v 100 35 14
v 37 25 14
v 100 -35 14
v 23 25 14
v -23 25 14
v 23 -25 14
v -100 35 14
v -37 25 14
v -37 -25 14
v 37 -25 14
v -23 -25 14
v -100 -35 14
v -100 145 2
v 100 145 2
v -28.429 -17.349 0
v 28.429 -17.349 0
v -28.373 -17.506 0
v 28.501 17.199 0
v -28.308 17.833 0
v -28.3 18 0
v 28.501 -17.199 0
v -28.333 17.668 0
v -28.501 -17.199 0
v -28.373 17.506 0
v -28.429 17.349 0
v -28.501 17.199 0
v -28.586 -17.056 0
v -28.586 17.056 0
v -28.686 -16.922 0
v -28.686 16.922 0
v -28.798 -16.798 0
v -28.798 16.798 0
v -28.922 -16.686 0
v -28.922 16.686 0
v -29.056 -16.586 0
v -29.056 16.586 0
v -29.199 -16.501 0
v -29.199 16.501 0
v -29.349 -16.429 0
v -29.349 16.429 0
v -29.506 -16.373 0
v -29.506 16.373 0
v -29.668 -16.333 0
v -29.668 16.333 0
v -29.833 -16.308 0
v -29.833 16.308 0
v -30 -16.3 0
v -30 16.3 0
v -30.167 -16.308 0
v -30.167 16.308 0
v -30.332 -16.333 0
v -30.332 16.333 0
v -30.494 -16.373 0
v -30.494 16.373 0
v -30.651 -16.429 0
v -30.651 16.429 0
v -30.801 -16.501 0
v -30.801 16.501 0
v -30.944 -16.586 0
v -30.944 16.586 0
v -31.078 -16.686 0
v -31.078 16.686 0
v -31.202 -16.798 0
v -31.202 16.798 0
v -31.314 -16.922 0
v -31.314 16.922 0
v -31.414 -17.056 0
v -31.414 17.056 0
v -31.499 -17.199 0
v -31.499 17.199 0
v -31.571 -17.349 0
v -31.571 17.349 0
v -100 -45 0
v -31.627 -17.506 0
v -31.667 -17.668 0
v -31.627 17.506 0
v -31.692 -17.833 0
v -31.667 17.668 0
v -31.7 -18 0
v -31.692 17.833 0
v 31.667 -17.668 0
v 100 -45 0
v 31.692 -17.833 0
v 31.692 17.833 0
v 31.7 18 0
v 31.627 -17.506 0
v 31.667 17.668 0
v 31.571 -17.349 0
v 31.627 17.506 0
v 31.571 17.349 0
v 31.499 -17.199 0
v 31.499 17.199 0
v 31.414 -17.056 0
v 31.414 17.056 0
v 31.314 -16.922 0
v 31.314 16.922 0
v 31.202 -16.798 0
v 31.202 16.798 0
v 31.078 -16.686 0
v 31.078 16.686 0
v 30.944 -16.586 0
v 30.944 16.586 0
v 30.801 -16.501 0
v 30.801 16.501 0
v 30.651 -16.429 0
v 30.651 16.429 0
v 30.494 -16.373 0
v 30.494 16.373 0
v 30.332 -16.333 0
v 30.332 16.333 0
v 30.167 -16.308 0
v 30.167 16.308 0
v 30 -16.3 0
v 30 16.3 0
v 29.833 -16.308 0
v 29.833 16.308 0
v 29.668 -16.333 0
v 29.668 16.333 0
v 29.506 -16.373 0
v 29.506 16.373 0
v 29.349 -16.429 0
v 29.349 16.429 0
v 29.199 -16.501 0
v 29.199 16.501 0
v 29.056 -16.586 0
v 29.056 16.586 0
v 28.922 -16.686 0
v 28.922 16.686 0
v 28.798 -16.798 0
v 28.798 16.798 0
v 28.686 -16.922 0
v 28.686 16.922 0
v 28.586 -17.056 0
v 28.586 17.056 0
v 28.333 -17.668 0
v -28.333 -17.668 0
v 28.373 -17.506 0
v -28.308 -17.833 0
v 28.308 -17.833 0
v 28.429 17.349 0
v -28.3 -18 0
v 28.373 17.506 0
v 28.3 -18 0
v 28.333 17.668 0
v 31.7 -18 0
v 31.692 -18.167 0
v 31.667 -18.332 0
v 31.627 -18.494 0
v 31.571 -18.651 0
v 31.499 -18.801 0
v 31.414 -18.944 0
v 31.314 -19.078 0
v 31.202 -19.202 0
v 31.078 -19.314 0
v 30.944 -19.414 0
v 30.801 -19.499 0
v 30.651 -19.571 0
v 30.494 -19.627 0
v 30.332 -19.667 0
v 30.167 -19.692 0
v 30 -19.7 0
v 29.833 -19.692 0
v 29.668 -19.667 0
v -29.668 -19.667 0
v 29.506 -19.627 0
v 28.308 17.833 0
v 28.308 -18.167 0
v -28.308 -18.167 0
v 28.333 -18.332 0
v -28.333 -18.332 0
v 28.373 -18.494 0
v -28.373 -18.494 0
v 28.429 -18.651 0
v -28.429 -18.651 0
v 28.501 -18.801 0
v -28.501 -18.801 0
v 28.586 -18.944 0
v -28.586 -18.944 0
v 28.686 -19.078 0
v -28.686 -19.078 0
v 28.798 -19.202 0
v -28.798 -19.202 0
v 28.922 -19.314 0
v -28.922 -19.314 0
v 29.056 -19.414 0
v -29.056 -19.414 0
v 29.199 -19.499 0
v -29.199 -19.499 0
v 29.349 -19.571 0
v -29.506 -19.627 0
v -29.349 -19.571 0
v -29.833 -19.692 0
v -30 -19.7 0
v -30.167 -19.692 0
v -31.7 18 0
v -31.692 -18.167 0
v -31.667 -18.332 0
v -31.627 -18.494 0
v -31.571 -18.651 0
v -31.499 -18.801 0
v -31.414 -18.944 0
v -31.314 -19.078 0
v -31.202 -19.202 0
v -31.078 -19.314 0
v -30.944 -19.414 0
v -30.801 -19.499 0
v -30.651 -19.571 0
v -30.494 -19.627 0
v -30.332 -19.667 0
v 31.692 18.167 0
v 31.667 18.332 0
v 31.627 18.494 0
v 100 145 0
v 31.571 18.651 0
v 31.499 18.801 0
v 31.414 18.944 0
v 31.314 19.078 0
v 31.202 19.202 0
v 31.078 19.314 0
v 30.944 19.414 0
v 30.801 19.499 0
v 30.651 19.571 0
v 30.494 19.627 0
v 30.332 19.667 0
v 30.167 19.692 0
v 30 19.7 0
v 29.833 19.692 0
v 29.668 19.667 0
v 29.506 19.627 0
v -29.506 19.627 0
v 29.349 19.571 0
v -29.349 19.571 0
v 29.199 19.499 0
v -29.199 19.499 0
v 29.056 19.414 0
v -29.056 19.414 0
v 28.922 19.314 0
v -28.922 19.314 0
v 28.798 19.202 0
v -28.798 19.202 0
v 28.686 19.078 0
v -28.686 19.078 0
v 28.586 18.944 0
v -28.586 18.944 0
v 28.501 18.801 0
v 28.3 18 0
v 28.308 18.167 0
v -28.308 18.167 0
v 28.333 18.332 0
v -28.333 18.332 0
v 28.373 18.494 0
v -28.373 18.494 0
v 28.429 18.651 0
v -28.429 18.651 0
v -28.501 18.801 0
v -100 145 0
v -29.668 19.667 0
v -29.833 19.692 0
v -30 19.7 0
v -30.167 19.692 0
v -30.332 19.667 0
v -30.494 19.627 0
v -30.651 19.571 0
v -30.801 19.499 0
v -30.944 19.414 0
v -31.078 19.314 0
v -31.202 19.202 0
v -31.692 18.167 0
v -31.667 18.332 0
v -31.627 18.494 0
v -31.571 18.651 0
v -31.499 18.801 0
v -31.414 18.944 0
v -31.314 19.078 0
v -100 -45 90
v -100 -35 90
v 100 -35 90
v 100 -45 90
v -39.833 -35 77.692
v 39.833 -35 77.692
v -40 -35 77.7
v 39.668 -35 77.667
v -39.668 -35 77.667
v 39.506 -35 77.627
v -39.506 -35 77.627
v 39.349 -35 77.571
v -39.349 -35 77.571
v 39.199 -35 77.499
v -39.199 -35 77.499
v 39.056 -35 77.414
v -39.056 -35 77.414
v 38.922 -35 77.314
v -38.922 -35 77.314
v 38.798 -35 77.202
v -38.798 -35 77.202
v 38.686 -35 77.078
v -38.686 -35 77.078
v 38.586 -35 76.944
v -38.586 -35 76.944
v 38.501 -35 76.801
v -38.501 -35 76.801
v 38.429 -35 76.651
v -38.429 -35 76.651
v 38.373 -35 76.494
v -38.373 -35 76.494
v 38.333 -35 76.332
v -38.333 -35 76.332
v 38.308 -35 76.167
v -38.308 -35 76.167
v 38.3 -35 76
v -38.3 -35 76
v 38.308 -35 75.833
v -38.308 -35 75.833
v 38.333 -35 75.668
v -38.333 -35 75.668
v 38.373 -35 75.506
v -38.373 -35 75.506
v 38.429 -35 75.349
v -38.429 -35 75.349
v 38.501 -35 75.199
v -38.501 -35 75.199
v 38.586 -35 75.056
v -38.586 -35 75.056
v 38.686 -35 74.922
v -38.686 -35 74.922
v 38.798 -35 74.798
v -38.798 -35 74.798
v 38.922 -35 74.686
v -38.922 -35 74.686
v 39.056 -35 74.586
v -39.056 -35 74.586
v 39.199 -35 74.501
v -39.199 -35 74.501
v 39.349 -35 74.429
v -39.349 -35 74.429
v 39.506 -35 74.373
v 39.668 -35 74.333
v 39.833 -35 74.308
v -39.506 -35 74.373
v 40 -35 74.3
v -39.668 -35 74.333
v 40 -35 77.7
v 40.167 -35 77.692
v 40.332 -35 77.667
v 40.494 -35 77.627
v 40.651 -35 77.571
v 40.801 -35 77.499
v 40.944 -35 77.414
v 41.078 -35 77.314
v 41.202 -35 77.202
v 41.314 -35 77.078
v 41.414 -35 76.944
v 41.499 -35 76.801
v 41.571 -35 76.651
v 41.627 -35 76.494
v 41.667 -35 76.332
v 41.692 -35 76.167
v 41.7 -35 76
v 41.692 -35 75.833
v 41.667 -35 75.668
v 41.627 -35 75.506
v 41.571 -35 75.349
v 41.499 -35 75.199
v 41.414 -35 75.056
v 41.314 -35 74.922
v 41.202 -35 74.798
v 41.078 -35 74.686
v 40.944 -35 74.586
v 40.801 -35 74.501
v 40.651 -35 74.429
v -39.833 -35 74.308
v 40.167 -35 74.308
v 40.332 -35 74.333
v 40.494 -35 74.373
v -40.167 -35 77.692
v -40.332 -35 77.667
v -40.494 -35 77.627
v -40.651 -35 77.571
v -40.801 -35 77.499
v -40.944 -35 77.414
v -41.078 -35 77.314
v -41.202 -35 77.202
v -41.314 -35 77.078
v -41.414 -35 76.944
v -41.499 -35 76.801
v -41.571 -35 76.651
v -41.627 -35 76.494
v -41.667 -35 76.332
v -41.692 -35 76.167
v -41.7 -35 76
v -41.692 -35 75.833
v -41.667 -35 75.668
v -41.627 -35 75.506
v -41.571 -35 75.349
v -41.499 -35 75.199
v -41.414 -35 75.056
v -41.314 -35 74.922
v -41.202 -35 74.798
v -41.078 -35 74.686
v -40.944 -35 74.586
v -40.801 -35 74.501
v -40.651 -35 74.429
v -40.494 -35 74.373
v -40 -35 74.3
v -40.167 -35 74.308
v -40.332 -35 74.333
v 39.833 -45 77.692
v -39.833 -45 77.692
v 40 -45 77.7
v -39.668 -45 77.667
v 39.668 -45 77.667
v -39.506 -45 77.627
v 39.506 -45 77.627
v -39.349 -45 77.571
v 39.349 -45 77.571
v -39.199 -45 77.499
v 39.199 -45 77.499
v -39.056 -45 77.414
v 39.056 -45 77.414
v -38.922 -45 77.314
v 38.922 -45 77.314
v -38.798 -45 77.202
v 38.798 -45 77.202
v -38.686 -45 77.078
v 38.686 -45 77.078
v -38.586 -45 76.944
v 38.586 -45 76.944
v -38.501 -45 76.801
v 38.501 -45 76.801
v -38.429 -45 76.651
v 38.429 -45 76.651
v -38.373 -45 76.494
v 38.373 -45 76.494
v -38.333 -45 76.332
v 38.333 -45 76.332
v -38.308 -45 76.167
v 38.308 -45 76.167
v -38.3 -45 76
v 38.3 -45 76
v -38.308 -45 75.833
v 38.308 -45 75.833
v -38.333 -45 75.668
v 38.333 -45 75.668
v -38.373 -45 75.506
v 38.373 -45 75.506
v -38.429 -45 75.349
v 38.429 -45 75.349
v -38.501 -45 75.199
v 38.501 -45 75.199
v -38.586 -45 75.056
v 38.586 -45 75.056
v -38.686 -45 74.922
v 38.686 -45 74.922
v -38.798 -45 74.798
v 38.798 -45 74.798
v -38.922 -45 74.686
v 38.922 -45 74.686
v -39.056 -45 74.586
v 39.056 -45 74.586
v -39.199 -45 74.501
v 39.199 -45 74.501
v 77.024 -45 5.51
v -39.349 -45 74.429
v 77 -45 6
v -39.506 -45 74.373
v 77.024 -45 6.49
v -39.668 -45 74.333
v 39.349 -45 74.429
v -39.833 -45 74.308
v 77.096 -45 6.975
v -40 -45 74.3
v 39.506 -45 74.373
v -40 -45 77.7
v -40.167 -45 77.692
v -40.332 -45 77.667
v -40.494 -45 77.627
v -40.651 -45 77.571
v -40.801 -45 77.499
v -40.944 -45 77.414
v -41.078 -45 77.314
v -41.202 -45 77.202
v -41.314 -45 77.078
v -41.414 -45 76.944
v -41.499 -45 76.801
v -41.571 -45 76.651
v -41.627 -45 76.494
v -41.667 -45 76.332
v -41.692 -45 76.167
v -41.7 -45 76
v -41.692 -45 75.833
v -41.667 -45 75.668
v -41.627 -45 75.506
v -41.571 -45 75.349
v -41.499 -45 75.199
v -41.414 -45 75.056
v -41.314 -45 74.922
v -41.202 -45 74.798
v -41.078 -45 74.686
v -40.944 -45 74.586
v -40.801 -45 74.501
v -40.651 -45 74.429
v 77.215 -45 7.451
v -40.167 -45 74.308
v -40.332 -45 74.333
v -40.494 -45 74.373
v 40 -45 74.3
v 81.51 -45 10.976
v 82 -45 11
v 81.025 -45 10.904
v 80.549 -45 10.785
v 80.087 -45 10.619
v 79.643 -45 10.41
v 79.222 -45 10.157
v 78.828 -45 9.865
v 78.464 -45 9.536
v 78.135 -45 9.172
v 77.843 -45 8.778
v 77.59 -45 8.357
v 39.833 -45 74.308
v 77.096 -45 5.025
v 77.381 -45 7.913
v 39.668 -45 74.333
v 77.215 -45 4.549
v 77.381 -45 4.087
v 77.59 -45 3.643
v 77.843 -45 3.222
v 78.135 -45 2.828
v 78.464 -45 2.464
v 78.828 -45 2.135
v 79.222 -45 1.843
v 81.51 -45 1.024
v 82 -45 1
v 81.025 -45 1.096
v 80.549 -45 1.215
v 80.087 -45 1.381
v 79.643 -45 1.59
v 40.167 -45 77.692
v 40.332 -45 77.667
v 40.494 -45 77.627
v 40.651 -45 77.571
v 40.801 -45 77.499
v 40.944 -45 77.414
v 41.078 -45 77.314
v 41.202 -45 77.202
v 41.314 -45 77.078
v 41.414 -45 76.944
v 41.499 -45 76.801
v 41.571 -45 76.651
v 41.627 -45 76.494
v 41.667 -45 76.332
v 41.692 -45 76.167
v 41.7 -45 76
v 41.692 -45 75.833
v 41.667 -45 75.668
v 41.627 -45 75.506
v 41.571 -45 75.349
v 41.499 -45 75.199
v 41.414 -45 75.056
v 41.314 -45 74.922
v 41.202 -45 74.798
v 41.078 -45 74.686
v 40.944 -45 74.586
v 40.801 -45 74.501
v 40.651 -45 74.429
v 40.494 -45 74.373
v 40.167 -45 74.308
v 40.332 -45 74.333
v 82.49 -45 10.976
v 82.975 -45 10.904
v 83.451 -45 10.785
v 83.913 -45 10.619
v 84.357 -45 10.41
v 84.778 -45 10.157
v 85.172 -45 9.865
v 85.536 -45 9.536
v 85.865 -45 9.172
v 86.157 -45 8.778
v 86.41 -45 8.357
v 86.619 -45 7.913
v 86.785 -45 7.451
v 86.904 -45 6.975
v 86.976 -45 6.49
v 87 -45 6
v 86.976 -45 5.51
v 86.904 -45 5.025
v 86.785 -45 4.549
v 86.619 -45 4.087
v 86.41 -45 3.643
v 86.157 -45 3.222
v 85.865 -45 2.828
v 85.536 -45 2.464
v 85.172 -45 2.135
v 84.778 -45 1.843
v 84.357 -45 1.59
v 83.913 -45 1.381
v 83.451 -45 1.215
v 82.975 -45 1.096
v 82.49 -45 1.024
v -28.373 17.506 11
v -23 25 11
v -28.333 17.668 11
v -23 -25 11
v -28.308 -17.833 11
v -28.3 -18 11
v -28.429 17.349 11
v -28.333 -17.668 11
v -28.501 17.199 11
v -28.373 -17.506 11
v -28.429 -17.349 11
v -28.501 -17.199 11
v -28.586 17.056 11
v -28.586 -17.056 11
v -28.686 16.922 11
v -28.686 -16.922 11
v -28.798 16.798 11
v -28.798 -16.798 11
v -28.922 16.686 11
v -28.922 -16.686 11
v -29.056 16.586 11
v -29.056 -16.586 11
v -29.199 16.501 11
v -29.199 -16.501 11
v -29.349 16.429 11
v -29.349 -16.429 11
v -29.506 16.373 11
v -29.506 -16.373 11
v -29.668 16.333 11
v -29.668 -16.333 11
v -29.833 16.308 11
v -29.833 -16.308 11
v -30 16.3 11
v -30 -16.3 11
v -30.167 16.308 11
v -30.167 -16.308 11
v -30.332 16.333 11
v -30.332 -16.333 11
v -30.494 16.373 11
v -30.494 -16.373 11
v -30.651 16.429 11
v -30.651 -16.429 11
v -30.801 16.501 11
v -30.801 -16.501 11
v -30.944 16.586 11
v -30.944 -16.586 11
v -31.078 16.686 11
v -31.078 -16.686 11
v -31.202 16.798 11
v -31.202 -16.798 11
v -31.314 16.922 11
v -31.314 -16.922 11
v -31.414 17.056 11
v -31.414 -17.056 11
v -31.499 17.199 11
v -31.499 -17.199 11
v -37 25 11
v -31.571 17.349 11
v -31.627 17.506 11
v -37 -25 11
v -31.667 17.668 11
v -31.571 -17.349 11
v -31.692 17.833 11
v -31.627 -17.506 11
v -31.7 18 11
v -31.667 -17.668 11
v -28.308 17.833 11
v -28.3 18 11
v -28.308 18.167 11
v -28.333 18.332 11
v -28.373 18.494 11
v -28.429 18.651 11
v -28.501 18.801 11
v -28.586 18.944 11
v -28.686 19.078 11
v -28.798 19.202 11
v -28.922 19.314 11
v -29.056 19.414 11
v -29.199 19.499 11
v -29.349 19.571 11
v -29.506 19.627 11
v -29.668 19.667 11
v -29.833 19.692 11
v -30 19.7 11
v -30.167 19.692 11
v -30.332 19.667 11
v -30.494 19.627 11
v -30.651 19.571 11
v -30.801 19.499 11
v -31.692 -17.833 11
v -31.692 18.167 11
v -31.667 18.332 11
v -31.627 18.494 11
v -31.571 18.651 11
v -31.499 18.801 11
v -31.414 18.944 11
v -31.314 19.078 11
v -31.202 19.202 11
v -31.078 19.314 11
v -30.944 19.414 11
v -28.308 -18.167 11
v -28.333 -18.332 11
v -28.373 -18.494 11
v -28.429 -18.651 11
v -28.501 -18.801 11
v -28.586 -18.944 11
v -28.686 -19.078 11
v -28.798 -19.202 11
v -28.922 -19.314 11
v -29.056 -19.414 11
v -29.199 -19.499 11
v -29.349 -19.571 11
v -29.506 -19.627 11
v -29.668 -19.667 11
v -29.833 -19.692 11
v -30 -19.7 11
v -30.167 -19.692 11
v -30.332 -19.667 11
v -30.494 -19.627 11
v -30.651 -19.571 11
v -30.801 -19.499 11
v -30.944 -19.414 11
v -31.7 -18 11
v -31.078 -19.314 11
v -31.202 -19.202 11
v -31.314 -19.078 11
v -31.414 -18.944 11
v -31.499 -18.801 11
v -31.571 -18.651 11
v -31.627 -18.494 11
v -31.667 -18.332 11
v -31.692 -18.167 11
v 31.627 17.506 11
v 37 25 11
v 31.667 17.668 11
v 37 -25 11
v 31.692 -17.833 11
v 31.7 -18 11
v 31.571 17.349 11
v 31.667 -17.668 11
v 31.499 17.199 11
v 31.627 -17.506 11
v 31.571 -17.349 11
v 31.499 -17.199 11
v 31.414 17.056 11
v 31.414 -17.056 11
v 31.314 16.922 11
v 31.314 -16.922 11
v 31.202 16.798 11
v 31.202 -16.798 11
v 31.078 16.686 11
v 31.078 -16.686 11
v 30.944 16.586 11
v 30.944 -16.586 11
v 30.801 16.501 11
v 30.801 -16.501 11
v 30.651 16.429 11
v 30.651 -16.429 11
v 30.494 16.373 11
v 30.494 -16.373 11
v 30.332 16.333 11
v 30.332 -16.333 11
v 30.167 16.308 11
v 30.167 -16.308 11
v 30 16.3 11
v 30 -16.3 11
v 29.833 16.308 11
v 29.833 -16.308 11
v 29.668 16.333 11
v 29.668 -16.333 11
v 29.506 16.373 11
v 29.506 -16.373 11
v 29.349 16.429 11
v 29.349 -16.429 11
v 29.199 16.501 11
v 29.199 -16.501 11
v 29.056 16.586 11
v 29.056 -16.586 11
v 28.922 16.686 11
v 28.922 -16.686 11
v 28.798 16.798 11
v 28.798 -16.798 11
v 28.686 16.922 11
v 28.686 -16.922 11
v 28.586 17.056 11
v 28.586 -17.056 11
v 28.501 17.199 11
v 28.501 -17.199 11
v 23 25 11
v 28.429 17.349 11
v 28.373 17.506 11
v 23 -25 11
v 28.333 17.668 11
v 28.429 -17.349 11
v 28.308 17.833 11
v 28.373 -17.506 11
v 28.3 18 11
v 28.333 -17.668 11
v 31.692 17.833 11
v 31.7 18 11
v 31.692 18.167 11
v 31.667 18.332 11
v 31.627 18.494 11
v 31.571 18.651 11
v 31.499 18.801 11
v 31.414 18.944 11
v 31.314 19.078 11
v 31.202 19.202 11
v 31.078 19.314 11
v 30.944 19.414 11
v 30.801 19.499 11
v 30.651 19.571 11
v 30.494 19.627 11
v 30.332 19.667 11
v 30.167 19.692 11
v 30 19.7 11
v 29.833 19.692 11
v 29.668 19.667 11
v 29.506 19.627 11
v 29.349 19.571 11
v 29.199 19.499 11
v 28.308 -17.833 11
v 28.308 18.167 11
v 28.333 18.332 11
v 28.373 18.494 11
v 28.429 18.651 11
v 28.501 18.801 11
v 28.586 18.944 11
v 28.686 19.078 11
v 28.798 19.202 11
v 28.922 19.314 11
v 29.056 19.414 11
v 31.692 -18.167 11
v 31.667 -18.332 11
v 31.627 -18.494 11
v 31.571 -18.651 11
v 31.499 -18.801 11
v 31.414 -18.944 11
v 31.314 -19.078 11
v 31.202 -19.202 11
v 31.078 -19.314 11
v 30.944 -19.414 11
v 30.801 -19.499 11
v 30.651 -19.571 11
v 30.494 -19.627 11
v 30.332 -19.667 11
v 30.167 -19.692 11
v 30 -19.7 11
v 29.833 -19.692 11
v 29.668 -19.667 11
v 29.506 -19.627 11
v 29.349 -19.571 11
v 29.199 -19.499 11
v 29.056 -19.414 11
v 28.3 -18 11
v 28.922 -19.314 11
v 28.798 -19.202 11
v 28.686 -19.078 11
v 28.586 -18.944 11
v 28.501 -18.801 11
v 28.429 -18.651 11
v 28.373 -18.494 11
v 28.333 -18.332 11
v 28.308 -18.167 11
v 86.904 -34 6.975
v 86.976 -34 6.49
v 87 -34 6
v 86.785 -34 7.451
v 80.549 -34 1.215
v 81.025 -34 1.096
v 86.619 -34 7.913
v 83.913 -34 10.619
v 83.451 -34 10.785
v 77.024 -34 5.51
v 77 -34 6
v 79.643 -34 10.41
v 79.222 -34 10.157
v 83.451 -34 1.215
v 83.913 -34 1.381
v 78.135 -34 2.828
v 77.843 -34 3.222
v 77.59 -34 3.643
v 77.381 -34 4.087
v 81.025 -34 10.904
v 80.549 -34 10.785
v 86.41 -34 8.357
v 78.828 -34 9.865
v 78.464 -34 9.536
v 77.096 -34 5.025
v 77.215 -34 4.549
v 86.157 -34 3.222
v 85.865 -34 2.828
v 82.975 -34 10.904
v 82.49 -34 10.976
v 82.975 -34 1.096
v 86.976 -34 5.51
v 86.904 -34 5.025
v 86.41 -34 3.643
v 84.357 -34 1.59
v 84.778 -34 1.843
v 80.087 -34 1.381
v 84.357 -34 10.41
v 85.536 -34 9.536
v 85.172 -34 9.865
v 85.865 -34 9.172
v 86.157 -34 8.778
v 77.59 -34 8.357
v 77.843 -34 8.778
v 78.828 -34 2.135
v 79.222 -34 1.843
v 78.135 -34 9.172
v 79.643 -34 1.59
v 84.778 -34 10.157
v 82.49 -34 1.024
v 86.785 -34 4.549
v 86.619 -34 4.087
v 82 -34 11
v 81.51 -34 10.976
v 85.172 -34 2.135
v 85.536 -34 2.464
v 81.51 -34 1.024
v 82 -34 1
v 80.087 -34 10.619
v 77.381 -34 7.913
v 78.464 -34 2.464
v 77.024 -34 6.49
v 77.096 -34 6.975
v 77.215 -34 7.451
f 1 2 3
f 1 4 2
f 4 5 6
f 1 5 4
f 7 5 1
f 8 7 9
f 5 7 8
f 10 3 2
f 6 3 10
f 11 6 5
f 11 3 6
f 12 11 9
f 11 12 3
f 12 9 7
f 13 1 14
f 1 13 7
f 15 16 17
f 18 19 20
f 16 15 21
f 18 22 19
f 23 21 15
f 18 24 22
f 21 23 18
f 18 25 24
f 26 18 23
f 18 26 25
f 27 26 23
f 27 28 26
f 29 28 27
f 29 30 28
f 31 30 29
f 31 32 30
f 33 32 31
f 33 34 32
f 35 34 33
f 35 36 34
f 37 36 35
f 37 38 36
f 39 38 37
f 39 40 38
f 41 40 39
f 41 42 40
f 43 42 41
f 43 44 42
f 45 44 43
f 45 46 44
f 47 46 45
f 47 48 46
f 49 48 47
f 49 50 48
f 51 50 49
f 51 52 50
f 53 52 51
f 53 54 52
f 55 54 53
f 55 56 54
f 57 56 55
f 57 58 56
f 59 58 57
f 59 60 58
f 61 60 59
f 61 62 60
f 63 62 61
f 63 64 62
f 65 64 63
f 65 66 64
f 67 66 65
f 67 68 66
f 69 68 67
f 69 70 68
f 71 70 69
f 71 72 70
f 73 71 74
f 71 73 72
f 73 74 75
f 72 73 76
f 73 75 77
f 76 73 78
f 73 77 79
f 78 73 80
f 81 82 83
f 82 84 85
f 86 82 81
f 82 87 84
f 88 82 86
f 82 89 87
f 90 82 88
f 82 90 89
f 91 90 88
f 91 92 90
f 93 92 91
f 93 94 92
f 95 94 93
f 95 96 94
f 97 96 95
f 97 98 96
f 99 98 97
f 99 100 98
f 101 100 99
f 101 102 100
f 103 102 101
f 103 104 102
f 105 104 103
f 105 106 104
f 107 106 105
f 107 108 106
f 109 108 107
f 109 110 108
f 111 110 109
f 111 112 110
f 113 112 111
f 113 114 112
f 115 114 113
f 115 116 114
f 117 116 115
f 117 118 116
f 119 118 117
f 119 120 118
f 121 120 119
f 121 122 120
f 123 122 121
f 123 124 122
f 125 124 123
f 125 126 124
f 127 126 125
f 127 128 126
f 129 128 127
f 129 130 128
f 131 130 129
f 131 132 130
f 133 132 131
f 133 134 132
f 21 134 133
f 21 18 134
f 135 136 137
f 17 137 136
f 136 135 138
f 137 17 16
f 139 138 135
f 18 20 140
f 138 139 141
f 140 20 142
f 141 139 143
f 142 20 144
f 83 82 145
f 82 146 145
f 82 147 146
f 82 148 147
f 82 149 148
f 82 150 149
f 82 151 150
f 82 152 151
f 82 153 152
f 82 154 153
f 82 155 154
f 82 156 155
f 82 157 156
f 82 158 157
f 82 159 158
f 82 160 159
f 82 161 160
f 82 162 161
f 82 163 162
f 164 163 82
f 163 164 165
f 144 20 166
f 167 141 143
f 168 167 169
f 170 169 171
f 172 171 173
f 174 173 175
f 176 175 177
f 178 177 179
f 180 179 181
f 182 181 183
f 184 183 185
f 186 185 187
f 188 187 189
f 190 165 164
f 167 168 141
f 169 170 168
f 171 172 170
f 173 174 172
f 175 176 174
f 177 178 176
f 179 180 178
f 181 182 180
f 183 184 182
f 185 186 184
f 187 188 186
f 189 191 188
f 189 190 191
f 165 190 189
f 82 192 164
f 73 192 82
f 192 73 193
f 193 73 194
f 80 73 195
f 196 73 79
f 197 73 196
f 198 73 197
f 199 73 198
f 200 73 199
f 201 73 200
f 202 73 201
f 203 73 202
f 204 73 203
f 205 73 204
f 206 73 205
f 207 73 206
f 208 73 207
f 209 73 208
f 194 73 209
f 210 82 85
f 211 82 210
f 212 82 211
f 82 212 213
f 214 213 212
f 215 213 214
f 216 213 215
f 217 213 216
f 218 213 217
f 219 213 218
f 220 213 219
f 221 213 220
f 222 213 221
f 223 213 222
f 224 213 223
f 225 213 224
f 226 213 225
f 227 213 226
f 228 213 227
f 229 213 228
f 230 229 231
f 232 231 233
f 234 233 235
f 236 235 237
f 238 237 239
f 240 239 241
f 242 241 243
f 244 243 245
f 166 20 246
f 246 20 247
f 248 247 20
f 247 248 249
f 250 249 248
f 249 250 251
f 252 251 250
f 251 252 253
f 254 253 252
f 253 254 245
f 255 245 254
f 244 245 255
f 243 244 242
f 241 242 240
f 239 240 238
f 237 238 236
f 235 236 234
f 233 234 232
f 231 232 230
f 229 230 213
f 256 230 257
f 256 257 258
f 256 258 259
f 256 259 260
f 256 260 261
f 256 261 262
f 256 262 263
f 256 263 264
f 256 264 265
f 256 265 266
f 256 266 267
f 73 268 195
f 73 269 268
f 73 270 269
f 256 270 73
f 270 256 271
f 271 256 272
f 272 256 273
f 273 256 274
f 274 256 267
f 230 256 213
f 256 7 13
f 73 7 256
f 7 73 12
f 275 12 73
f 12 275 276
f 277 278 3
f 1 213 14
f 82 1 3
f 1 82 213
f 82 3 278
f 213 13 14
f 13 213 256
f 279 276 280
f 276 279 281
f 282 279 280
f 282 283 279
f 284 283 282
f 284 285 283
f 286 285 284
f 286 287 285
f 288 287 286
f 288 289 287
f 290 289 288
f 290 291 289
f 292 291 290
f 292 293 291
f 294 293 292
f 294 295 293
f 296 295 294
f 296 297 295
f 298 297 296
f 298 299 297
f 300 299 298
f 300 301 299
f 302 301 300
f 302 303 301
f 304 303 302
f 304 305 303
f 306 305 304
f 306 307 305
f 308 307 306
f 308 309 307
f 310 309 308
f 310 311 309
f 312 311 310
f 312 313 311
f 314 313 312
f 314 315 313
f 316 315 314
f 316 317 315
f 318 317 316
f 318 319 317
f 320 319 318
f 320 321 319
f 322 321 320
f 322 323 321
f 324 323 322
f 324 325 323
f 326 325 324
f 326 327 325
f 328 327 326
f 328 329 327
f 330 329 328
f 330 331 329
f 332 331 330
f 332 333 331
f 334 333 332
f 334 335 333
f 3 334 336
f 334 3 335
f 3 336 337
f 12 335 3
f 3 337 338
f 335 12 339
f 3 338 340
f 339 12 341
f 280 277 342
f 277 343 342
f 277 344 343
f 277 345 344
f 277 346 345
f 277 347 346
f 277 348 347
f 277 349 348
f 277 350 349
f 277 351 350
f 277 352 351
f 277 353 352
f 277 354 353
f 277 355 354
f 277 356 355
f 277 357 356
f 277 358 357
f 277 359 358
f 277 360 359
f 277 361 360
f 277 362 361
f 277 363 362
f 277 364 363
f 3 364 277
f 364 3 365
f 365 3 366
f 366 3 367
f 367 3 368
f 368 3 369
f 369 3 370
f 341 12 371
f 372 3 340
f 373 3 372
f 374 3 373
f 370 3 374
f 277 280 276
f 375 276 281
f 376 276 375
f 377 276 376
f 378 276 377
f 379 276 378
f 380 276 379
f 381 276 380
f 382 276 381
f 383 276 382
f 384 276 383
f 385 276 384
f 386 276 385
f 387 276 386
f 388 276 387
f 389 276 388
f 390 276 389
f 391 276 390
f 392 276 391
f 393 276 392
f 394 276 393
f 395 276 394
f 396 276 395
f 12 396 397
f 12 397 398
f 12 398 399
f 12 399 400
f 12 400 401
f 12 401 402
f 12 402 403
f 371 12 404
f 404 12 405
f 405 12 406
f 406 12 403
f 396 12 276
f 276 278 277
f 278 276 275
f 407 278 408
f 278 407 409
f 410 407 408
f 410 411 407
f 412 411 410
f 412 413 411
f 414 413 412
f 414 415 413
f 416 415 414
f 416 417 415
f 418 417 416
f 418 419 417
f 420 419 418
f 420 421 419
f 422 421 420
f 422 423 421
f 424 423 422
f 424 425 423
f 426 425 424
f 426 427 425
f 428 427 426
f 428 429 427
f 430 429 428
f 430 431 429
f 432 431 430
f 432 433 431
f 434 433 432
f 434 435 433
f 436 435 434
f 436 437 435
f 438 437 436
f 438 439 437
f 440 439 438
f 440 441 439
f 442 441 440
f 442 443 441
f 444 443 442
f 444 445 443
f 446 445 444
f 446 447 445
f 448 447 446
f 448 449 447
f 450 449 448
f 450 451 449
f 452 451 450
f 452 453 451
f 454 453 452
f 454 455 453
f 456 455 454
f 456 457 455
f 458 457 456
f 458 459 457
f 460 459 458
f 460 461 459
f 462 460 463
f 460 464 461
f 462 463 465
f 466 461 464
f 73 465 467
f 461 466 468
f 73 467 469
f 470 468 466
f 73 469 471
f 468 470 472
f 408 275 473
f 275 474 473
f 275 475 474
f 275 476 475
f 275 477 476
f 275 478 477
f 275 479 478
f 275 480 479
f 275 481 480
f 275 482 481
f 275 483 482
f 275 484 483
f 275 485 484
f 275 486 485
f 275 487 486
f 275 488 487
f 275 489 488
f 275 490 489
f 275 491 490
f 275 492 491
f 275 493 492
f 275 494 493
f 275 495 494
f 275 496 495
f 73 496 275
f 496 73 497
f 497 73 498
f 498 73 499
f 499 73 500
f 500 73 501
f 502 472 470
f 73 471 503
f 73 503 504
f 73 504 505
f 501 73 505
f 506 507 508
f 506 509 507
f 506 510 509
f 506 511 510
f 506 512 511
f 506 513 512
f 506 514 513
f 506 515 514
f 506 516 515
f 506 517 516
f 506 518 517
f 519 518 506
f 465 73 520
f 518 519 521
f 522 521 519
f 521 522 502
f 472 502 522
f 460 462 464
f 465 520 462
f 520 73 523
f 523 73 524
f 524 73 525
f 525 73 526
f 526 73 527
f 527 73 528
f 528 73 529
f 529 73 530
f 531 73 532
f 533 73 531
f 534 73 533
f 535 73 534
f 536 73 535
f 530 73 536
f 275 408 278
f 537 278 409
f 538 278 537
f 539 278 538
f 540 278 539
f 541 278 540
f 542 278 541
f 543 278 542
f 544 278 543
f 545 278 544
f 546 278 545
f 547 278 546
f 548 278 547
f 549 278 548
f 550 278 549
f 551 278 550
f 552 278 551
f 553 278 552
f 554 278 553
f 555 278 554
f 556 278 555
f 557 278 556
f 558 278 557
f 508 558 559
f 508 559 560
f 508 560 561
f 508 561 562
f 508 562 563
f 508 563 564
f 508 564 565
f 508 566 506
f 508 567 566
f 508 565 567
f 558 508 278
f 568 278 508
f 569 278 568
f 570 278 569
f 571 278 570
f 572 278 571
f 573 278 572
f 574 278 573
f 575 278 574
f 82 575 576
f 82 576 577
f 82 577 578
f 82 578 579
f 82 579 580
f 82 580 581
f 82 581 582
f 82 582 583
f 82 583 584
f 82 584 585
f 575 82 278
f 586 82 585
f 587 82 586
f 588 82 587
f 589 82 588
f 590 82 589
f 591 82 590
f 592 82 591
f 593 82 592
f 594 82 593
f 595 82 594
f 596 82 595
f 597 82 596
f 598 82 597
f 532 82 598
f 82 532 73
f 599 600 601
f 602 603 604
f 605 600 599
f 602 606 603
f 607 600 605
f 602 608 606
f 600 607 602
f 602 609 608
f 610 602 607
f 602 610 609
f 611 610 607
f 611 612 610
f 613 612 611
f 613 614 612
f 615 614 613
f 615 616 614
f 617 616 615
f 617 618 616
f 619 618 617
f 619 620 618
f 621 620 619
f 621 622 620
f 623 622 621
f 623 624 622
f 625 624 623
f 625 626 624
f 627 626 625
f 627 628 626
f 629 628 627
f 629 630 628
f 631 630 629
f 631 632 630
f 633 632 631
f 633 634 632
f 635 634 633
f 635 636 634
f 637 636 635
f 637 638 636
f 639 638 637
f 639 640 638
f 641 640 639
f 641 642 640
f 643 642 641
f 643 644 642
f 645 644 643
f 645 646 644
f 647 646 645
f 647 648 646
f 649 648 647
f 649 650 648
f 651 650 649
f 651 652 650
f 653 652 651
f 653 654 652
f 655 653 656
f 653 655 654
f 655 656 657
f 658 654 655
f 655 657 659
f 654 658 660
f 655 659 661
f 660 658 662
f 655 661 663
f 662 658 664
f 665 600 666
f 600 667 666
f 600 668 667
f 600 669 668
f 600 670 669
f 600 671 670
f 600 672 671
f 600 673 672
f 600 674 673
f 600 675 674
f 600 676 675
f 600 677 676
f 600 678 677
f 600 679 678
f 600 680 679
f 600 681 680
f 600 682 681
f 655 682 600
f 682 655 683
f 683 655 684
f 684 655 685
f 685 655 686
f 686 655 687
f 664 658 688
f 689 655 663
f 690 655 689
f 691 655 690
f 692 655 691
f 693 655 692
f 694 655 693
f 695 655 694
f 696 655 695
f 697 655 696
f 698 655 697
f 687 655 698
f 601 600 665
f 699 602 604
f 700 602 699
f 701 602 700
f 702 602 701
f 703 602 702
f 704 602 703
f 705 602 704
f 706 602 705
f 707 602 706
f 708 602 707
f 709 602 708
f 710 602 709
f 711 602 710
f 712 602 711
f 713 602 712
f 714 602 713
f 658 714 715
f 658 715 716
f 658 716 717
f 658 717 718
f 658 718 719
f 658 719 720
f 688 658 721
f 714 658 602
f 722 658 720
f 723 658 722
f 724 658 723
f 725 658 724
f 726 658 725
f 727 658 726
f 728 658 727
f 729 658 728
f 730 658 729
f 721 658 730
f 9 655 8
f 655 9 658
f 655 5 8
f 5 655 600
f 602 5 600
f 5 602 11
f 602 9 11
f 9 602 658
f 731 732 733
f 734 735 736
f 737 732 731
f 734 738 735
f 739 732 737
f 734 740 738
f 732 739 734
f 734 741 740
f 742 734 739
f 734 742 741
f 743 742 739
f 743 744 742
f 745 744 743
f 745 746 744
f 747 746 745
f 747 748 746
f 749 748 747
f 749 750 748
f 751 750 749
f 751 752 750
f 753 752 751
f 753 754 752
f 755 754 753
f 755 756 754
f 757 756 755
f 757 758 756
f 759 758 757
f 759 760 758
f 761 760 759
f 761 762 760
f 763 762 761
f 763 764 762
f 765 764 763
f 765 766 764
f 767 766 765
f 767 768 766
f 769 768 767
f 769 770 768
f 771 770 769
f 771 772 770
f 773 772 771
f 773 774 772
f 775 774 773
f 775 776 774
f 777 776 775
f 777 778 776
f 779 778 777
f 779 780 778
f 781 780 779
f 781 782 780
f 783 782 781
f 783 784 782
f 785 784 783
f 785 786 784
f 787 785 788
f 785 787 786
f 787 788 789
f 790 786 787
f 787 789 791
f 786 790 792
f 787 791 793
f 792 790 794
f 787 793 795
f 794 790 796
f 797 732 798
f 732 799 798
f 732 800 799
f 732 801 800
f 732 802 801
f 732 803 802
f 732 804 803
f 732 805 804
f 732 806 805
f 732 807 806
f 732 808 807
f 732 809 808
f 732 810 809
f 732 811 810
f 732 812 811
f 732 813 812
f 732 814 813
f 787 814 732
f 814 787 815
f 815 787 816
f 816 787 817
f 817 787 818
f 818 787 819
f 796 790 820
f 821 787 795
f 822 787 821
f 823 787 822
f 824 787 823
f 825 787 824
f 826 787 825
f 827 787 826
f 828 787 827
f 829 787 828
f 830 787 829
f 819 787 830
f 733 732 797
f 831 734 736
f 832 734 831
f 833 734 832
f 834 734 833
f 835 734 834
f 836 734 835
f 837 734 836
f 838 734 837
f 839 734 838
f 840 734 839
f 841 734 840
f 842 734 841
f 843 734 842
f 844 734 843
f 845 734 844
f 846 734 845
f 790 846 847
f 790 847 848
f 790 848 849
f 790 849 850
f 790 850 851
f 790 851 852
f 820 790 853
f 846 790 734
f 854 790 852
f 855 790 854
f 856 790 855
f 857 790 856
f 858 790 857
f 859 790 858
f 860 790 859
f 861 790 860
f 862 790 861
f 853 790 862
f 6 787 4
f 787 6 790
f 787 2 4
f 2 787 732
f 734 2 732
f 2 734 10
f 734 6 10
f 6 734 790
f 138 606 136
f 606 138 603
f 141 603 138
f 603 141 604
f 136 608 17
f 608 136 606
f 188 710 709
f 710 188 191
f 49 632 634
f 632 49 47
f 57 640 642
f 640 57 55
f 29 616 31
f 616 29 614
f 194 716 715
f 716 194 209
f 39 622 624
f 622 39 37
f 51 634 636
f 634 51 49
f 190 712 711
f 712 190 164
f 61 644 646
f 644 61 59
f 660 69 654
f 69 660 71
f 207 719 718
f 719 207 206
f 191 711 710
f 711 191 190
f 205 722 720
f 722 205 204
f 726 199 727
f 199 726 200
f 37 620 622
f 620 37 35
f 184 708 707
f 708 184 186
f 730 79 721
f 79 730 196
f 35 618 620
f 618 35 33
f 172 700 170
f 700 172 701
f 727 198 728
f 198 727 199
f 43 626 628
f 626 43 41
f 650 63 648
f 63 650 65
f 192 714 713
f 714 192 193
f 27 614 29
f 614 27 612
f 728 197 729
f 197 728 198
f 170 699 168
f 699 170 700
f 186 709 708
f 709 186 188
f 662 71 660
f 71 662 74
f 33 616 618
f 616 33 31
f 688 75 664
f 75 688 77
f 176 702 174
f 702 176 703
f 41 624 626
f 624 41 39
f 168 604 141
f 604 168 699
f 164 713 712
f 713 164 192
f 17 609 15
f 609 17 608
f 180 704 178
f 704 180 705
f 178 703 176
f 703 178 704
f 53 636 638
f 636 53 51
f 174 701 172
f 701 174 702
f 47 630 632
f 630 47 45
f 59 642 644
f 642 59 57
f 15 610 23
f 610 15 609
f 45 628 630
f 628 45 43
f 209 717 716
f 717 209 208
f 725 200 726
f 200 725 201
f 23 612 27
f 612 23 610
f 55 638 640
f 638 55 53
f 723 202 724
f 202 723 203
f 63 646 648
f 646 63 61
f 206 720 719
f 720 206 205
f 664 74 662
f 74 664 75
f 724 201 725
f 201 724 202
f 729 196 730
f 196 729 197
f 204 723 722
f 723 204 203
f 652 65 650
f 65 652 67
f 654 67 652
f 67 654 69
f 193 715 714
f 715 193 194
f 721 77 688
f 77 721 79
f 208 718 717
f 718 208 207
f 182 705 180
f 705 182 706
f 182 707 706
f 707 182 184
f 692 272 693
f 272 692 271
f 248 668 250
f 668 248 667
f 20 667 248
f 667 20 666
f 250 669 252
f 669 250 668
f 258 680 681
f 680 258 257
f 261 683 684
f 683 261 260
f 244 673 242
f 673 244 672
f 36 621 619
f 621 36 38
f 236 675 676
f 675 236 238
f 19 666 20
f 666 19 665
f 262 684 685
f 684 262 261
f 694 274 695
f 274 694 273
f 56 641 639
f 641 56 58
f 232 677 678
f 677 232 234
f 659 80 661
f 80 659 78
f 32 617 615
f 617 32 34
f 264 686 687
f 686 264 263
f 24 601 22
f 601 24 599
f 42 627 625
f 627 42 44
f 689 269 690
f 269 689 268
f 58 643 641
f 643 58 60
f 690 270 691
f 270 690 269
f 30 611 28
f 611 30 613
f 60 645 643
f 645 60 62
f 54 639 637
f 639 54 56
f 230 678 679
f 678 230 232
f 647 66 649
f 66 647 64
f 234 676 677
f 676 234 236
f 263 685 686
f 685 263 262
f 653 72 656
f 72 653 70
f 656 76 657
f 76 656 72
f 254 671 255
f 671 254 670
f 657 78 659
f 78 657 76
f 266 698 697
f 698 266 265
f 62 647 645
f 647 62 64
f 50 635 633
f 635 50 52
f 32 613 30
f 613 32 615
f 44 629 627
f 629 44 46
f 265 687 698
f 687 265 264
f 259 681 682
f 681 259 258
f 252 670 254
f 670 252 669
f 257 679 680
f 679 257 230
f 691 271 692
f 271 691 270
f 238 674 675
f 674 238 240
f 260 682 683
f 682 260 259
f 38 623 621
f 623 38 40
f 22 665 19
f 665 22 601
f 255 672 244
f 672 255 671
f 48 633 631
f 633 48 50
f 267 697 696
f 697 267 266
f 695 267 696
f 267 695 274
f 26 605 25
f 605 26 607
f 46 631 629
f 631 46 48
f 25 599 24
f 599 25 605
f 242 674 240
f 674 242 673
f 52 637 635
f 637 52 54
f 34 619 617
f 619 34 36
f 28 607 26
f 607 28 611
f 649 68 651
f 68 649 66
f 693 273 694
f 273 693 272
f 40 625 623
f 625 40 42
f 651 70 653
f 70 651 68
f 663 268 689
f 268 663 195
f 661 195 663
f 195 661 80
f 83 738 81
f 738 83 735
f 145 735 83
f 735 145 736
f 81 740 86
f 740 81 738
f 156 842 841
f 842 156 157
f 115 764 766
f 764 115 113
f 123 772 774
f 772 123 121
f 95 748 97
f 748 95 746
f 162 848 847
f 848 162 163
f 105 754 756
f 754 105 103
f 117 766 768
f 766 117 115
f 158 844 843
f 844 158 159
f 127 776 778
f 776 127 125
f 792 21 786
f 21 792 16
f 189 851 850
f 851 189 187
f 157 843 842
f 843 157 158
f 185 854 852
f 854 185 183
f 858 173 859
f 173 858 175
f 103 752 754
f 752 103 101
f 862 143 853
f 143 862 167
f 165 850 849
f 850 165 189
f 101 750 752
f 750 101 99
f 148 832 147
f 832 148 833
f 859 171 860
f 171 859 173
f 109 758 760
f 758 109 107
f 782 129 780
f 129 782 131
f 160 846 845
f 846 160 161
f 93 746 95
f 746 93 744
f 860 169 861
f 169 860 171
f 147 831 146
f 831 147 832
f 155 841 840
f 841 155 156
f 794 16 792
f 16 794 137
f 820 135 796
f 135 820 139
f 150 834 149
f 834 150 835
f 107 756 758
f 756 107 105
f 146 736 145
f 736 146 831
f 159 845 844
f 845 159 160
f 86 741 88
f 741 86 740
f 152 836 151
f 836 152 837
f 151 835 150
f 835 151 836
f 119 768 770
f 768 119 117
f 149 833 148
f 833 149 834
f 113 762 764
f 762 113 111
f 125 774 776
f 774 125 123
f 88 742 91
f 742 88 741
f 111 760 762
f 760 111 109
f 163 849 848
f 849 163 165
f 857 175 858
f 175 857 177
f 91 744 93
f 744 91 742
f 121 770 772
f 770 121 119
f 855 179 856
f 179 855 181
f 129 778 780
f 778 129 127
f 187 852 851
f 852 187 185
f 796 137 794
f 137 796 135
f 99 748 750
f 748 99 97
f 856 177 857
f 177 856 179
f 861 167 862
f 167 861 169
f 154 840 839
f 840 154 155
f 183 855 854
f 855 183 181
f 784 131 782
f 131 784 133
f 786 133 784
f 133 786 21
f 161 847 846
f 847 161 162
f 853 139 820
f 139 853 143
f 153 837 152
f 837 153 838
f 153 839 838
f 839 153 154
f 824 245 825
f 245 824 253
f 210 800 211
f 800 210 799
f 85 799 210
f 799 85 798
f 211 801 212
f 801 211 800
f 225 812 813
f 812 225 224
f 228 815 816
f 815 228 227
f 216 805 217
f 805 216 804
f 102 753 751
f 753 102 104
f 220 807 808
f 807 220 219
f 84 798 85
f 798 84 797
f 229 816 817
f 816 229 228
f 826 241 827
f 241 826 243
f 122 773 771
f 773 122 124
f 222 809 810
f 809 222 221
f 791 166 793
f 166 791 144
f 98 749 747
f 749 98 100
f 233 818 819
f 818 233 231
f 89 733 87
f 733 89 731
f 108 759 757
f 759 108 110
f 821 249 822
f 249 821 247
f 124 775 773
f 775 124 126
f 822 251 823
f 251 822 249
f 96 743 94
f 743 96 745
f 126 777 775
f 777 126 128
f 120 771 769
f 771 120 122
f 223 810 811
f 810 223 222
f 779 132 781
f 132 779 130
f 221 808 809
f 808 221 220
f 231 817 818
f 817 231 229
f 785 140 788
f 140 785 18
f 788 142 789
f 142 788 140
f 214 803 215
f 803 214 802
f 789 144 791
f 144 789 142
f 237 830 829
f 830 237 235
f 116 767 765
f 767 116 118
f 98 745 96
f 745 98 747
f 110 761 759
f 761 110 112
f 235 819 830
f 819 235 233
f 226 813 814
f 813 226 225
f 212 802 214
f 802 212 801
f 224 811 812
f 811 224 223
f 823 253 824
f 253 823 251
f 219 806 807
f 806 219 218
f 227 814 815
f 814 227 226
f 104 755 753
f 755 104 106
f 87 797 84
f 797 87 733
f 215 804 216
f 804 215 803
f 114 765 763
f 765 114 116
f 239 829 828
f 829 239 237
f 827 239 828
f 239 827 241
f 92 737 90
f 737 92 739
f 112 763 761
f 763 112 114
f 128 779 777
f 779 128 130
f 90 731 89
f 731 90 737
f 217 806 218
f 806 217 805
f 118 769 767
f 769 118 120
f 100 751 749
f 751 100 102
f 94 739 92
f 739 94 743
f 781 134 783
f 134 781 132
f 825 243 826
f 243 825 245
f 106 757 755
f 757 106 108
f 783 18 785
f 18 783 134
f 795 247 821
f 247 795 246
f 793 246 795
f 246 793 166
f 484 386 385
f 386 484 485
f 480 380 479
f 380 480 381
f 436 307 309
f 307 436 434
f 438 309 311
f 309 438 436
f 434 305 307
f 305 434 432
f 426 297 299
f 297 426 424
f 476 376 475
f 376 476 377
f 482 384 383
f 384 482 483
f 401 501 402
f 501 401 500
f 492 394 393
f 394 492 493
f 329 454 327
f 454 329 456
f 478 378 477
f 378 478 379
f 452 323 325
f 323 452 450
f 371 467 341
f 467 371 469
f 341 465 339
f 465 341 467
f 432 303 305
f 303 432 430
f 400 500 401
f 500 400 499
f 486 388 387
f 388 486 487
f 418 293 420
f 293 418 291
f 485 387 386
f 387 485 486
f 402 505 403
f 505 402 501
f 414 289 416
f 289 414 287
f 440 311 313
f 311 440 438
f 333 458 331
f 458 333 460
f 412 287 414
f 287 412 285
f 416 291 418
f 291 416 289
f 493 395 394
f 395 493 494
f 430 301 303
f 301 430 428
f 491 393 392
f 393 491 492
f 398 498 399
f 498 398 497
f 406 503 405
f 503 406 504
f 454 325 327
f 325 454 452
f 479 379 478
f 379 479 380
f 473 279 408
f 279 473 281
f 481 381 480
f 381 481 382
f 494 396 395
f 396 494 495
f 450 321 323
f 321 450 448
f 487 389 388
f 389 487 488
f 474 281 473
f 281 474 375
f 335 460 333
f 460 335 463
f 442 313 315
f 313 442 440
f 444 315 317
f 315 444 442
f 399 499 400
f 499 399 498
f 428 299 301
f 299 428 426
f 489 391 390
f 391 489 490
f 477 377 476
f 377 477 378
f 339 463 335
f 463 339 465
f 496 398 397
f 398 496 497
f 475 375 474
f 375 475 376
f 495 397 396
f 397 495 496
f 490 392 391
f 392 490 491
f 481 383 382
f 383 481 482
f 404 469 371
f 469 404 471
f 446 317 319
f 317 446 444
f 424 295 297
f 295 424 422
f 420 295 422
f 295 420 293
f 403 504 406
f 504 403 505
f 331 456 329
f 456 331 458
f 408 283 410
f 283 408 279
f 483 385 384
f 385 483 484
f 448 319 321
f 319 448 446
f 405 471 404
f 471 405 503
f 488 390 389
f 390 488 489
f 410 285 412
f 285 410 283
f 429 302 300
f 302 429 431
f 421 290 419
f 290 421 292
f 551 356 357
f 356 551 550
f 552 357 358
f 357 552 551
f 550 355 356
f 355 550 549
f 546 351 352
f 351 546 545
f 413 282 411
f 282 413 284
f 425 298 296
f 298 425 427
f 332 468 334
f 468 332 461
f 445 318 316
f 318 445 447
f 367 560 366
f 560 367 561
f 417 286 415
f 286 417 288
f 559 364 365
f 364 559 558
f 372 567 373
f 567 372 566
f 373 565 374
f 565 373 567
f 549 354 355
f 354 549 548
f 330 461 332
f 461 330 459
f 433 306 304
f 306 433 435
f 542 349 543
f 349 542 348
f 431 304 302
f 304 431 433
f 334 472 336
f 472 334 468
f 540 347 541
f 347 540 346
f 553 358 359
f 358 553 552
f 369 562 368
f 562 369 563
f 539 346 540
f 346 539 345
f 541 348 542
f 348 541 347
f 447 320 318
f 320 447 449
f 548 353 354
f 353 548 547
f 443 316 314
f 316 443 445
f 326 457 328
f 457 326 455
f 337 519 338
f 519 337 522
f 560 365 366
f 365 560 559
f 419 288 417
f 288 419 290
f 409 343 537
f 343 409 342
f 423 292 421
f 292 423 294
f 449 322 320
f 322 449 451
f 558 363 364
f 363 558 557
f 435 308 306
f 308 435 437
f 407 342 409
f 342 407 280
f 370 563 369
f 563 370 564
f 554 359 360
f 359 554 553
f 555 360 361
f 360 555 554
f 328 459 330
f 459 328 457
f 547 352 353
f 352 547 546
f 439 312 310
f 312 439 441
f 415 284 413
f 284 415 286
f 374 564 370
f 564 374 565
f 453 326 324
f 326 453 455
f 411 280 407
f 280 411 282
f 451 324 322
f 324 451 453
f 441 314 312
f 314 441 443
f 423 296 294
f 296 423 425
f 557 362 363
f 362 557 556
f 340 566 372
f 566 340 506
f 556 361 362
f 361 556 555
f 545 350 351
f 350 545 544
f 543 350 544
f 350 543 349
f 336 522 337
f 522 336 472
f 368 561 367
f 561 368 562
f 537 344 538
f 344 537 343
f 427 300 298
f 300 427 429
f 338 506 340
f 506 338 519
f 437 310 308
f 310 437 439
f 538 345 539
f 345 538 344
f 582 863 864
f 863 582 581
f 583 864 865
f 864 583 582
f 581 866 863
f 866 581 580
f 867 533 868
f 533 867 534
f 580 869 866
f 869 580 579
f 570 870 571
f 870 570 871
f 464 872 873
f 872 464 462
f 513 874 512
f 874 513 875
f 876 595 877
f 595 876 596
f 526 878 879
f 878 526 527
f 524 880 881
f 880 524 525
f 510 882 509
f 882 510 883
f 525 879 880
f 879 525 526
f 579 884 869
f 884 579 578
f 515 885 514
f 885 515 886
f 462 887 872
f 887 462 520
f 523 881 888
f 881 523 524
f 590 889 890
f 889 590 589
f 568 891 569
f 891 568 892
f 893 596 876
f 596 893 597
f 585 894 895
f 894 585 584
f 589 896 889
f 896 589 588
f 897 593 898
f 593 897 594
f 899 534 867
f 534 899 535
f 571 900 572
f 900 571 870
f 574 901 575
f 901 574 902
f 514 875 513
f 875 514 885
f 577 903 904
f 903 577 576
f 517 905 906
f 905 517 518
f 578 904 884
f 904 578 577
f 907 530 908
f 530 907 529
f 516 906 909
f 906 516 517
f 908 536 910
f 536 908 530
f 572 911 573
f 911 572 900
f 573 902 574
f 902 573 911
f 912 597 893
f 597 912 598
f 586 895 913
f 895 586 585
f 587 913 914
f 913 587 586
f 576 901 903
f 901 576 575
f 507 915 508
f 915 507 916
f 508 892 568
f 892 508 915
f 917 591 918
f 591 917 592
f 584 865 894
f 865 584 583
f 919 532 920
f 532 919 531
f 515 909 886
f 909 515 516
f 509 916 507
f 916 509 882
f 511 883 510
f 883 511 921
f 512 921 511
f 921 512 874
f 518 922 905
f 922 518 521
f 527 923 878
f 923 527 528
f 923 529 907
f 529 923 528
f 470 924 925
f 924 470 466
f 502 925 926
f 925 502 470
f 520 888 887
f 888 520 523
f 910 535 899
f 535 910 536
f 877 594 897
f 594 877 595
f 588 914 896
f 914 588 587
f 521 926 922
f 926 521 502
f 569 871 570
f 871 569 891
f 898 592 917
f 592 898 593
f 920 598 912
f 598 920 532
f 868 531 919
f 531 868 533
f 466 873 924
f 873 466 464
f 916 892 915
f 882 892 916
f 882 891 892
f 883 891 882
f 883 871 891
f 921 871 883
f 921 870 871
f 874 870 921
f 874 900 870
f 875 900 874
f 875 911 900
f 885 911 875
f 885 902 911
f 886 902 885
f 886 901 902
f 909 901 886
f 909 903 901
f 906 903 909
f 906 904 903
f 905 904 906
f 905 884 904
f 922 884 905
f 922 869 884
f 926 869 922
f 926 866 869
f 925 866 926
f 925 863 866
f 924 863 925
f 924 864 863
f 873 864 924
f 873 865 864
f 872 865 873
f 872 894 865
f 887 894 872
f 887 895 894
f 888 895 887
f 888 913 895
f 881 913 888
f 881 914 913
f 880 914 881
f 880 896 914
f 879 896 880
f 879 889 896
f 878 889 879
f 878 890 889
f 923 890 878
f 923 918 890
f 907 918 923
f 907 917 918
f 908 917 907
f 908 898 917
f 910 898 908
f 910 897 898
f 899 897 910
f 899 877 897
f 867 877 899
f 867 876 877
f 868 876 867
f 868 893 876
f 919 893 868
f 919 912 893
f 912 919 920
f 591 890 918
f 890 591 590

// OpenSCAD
// file: common.scad
// KARAKURI shared parameters and helpers
// All dimensions in millimetres. Holes are printed undersize-safe:
// M3 through 3.4, M4 through 4.5, M2.5 through 2.9, quarter-inch 6.6.

$fn = 64;

m2_5 = 2.9;
m3 = 3.4;
m4 = 4.5;
quarter_inch = 6.6;

module rounded_plate(x, y, t, r = 8) {
    linear_extrude(t)
        offset(r = r) offset(delta = -r)
            square([x, y], center = true);
}

module hole(d, h) {
    translate([0, 0, -0.5]) cylinder(d = d, h = h + 1);
}

module slot(d, len, h) {
    translate([0, 0, -0.5])
        linear_extrude(h + 1)
            hull() {
                translate([-len / 2, 0]) circle(d = d);
                translate([ len / 2, 0]) circle(d = d);
            }
}

module four_holes(dx, dy, d, h) {
    for (sx = [-1, 1], sy = [-1, 1])
        translate([sx * dx / 2, sy * dy / 2, 0]) hole(d, h);
}
// main file
// Charging dock. Gentle ramp guides the robot until the underside
// contact shoe lands on two spring strips set in the recesses. An
// AprilTag plate stands at the back so SHIKAI can line up the
// approach. Dock electronics (LiFePO4 charger) sit behind the wall.
include <common.scad>

dock_w = 200; ramp_len = 110; land_len = 70; wall_h = 90;

module dock_base() {
    difference() {
        union() {
            // ramp
            hull() {
                translate([0, ramp_len / 2 + land_len / 2, 0])
                    linear_extrude(2) square([dock_w, ramp_len], center = true);
                translate([0, land_len / 2 - 4, 0])
                    linear_extrude(14) square([dock_w, 8], center = true);
            }
            // landing pad
            translate([0, 0, 0]) linear_extrude(14)
                square([dock_w, land_len], center = true);
            // back wall and tag plate
            translate([0, -land_len / 2 - 5, 0]) linear_extrude(wall_h)
                square([dock_w, 10], center = true);
        }
        // contact strip recesses, 60 mm apart
        for (x = [-30, 30])
            translate([x, 0, 14 - 3]) linear_extrude(4)
                square([14, 50], center = true);
        // strip screw holes
        for (x = [-30, 30], y = [-18, 18])
            translate([x, y, 0]) hole(m3, 14);
        // tag plate screw holes on the wall
        for (x = [-40, 40])
            translate([x, -land_len / 2 - 5, wall_h - 14])
                rotate([90, 0, 0]) translate([0, 0, -6]) cylinder(d = m3, h = 14);
        // cable exit
        translate([dock_w / 2 - 18, -land_len / 2 - 5, 6])
            rotate([90, 0, 0]) translate([0, 0, -6]) cylinder(d = 10, h = 14);
    }
}
dock_base();
